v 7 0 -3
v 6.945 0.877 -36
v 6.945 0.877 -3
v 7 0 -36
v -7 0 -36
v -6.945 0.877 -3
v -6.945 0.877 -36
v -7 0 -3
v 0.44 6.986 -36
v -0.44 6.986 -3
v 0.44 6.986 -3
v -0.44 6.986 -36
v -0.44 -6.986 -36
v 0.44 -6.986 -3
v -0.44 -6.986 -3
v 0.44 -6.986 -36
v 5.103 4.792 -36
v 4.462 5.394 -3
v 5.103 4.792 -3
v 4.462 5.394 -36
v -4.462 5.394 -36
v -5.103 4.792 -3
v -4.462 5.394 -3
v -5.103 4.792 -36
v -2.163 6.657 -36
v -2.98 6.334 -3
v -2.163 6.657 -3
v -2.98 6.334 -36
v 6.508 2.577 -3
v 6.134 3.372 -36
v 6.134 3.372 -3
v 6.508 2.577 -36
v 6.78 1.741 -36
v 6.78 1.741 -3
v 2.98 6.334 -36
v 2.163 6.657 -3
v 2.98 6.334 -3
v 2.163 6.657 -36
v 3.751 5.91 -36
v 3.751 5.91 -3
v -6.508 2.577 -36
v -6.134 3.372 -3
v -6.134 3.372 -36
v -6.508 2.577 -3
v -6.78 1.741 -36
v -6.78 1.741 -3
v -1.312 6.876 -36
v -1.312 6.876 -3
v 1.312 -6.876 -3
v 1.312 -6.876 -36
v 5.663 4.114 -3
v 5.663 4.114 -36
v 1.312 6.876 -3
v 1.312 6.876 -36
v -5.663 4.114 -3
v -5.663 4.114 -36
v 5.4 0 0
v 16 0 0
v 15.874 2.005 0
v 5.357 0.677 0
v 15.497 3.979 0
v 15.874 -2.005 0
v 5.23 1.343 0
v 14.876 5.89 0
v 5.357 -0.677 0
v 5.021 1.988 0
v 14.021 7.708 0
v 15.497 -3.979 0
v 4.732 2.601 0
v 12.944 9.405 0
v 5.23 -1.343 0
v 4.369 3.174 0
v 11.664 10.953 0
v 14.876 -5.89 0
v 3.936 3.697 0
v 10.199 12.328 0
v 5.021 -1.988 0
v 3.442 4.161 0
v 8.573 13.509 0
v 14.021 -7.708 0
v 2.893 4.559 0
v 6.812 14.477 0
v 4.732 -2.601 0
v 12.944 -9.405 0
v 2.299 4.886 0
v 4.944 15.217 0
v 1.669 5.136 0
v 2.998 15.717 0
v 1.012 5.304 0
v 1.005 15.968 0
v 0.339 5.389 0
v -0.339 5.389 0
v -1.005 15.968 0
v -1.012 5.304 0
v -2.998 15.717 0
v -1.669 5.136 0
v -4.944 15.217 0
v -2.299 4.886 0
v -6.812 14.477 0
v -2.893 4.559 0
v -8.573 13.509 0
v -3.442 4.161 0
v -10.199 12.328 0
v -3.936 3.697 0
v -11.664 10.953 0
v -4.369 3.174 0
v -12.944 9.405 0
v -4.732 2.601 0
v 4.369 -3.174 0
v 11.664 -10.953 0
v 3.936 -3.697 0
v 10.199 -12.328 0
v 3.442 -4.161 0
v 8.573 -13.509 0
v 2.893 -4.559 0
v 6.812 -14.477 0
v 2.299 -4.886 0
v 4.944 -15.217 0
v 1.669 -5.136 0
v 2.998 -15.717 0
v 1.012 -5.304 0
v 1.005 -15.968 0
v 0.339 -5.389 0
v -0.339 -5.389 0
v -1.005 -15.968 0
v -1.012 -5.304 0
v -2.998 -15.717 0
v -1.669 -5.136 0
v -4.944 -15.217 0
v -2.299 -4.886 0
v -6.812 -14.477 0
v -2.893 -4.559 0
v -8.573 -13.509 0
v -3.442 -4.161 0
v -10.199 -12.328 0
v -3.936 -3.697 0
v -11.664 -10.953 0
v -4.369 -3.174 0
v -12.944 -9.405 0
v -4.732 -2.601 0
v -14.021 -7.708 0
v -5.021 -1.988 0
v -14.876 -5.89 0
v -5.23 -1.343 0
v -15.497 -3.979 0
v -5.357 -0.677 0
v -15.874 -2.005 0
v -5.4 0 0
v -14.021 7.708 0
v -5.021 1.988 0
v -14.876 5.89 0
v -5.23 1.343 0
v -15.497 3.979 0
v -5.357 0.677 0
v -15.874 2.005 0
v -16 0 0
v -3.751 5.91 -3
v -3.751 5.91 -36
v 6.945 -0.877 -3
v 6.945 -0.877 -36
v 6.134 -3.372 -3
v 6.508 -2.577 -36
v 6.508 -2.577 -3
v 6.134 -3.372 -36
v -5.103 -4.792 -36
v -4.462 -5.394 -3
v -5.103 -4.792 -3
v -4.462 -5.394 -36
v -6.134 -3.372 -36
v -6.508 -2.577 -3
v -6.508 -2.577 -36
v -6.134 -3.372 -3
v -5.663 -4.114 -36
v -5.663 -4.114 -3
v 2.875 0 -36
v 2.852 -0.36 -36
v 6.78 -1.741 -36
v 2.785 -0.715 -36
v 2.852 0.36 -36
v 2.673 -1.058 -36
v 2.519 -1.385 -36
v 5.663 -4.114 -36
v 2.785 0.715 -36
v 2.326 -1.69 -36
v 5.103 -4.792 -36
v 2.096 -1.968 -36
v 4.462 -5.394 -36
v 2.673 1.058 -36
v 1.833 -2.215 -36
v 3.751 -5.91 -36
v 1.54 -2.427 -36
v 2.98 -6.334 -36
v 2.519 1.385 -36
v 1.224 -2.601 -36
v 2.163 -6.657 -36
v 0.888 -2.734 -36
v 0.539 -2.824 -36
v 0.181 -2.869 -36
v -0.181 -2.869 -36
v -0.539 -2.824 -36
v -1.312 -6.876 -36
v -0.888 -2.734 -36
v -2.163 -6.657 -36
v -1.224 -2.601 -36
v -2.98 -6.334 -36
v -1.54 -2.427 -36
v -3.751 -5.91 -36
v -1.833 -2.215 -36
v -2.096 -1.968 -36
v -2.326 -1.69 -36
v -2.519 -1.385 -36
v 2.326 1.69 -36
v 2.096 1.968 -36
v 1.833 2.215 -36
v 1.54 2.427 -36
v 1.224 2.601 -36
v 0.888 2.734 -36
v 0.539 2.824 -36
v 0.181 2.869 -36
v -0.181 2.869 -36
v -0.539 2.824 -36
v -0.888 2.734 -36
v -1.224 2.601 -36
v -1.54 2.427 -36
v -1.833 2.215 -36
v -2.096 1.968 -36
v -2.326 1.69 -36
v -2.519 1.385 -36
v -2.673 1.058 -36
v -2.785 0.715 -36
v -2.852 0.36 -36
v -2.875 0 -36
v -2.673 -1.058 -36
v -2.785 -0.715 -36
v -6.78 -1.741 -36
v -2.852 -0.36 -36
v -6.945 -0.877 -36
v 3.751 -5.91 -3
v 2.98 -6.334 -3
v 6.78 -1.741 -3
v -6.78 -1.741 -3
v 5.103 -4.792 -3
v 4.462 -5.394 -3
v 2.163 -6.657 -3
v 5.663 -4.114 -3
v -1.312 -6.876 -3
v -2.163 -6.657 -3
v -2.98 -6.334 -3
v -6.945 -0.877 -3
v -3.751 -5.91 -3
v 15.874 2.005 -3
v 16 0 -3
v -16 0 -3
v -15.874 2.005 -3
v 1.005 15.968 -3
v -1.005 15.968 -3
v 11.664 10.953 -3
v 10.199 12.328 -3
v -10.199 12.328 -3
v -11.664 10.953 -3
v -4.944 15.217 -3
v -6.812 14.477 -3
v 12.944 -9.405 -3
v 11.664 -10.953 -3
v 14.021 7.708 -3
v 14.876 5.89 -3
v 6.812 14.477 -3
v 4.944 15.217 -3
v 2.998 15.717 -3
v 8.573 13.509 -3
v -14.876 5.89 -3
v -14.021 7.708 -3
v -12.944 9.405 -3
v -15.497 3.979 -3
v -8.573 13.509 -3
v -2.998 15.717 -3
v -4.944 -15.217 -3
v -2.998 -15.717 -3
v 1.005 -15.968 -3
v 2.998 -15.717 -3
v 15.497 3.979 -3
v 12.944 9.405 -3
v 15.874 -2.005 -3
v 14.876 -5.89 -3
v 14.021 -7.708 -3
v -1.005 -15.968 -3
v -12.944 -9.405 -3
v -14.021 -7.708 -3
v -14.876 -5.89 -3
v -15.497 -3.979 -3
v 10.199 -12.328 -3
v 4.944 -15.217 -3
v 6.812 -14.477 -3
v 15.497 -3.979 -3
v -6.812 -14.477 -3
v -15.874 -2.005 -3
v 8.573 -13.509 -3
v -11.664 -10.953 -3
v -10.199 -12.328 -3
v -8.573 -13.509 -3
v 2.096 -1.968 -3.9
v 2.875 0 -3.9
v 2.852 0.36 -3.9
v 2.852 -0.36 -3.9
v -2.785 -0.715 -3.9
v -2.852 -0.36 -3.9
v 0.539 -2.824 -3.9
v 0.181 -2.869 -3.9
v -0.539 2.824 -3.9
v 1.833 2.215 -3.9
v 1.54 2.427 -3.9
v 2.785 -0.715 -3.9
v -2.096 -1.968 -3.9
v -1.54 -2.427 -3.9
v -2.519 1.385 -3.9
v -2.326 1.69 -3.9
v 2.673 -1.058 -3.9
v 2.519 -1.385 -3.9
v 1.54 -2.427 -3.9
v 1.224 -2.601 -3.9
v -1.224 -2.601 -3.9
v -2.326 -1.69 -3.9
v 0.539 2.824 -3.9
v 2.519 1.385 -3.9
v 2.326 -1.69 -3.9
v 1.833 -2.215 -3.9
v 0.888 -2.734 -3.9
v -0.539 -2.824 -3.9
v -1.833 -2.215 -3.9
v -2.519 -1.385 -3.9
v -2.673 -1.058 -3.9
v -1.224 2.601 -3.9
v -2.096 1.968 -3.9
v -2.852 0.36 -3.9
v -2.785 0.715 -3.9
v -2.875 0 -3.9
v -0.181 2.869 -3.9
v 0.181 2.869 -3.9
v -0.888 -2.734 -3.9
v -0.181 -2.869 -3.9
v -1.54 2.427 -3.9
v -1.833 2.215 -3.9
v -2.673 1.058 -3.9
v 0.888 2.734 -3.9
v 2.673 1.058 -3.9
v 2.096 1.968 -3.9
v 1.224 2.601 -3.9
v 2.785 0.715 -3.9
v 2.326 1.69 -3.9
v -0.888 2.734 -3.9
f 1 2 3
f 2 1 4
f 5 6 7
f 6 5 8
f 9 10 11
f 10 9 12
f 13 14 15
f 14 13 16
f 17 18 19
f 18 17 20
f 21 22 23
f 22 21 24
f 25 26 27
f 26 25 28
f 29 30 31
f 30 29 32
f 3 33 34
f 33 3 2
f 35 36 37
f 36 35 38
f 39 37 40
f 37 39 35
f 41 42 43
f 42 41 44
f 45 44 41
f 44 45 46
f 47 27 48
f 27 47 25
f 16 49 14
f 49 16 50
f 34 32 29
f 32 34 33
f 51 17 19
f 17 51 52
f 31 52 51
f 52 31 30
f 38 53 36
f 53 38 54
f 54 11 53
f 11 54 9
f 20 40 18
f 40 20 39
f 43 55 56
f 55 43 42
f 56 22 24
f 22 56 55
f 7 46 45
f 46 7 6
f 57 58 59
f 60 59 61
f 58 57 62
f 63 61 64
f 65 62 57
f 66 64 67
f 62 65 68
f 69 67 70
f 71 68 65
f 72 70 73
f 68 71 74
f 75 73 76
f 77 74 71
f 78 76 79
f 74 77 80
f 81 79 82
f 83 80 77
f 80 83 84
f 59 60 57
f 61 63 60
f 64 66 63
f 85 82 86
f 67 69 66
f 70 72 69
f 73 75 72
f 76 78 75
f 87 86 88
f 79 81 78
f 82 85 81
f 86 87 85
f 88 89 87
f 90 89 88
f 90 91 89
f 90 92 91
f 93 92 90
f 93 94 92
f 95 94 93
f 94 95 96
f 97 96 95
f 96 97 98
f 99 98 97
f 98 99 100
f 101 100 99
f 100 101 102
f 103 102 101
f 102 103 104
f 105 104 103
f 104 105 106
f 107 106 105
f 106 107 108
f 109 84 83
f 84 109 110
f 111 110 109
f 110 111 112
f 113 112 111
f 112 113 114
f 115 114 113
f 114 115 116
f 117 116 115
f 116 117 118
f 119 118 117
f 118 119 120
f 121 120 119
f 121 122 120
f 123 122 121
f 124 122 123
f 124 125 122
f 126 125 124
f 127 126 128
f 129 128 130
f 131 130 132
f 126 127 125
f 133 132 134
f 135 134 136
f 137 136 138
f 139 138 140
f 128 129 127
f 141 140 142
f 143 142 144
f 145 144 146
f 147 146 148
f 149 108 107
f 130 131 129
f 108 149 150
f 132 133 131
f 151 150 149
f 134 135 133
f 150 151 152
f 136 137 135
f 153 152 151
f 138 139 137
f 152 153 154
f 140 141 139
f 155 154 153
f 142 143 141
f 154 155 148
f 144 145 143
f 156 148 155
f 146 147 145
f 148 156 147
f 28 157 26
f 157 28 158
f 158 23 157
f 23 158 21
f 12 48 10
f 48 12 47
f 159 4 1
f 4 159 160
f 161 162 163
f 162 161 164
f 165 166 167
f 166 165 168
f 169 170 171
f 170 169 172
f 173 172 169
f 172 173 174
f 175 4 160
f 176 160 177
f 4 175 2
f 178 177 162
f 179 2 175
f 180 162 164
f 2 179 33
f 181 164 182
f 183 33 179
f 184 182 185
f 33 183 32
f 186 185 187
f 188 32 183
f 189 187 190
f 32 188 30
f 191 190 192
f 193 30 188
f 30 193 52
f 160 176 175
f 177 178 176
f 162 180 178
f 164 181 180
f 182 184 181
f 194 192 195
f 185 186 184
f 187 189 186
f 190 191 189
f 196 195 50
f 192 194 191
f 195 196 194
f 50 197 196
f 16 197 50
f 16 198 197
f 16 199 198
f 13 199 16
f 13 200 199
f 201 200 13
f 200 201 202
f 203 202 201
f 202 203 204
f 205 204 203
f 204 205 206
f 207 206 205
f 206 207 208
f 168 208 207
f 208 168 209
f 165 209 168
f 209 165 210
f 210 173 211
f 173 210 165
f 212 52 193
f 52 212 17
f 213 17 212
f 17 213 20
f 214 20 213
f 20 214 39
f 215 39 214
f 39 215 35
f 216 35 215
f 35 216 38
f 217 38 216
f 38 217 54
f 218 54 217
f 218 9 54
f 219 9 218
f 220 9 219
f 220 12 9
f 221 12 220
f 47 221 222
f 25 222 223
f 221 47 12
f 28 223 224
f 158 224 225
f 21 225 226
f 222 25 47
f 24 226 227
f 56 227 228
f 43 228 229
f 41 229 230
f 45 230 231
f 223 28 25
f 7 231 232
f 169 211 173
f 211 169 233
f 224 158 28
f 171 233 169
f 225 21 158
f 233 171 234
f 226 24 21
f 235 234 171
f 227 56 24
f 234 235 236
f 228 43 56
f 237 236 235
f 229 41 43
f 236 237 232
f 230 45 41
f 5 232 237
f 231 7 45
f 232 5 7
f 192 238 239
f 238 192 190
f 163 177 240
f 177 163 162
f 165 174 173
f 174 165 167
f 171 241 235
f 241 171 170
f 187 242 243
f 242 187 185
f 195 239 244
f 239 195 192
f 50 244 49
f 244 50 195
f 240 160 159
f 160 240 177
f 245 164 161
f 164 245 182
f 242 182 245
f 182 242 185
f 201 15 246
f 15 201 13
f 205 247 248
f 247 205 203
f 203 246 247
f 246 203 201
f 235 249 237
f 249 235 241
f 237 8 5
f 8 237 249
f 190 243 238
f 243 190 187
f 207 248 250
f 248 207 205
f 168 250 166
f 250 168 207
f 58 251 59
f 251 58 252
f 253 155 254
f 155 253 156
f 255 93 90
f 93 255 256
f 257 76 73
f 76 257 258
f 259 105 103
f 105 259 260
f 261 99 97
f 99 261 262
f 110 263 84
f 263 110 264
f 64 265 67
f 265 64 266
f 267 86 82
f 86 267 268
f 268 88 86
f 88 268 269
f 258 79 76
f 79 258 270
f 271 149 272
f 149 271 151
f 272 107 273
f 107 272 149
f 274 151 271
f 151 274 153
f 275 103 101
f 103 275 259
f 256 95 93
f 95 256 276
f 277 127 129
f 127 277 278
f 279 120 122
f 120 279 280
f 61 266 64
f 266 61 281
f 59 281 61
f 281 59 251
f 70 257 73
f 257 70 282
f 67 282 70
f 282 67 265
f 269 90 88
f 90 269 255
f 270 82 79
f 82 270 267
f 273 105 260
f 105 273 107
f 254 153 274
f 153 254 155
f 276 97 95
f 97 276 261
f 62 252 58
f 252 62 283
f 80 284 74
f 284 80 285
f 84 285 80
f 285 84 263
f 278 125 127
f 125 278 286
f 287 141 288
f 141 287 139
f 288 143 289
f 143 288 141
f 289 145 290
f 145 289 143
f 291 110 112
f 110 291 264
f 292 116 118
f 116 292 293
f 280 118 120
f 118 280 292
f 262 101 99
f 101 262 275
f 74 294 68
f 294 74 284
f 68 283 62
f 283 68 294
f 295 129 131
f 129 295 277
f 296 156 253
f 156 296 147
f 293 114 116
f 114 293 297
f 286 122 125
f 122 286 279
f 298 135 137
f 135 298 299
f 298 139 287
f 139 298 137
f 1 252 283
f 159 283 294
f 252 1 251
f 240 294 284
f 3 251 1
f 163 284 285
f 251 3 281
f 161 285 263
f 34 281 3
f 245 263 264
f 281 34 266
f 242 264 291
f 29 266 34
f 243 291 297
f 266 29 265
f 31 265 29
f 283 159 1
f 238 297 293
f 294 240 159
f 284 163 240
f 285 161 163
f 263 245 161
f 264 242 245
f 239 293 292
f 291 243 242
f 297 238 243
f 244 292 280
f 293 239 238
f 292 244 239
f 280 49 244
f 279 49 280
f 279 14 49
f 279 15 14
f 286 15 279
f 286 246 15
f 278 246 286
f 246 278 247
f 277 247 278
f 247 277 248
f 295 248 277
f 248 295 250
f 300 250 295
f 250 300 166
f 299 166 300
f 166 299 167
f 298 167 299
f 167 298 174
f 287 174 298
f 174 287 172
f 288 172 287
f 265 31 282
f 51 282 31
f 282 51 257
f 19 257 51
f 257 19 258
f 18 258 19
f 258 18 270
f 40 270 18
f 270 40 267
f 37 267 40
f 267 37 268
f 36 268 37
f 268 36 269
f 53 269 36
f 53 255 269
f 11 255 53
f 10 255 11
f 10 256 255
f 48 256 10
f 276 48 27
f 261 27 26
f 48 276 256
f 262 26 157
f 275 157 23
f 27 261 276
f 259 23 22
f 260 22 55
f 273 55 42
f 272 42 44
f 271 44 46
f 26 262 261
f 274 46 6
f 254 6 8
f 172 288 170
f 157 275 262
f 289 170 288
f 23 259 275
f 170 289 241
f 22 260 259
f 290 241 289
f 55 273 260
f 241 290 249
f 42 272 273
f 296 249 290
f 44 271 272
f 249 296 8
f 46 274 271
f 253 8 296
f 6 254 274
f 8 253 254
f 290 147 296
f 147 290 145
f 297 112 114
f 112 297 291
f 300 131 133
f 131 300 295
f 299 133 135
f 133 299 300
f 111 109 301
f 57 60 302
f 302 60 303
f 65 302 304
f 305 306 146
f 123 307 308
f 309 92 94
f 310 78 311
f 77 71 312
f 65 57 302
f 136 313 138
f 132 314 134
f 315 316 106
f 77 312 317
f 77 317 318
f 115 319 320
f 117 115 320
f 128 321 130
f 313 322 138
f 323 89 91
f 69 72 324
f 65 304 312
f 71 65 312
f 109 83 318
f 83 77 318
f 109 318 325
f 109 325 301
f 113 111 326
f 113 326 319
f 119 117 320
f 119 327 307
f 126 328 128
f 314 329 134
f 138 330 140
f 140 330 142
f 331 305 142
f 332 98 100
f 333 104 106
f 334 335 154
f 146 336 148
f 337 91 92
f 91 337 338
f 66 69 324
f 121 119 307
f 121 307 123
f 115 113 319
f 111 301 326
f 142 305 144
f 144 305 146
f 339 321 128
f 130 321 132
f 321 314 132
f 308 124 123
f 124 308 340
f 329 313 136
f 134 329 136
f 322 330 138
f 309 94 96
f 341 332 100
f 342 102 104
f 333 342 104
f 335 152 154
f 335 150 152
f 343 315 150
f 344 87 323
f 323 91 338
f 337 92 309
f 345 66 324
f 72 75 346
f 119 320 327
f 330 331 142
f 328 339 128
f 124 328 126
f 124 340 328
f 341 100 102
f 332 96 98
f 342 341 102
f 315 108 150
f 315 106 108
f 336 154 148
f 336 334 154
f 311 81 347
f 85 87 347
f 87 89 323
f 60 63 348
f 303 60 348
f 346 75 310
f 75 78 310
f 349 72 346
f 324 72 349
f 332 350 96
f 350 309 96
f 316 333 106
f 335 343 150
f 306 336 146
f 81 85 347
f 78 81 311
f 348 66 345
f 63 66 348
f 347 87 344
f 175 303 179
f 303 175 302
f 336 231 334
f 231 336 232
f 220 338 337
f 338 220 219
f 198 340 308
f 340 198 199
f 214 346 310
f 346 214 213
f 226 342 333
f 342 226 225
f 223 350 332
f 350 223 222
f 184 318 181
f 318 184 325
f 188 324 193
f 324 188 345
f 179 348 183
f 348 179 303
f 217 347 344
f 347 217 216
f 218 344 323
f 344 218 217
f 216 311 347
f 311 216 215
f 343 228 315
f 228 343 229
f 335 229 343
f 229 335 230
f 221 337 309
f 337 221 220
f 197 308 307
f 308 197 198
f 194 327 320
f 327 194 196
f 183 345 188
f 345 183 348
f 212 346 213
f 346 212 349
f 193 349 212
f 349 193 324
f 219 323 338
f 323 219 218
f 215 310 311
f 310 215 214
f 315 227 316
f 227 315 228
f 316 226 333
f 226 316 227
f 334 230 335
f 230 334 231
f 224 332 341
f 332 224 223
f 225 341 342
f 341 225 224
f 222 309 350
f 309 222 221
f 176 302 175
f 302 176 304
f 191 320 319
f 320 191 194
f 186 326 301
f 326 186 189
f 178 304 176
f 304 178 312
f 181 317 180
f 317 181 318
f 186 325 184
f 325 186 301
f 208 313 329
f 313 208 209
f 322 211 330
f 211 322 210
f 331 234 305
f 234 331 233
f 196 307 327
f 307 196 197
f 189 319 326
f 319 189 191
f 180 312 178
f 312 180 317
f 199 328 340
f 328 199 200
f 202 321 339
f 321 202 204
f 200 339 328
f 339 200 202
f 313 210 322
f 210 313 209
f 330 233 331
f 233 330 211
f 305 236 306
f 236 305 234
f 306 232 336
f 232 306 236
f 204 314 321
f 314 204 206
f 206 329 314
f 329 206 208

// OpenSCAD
$fn = 50;


difference() {
	union() {
		translate(v = [0, 0, -36.0000000000]) {
			cylinder(h = 36, r = 7.0000000000);
		}
		translate(v = [0, 0, -3.0000000000]) {
			cylinder(h = 3, r = 16.0000000000);
		}
	}
	union() {
		translate(v = [0, 0, 0]) {
			rotate(a = [0, 0, 0]) {
				difference() {
					union() {
						#translate(v = [0, 0, -36.0000000000]) {
							cylinder(h = 36, r = 2.6000000000);
						}
						#translate(v = [0, 0, -3.9000000000]) {
							cylinder(h = 3.9000000000, r = 7.0000000000, r1 = 2.8750000000, r2 = 5.4000000000);
						}
						#translate(v = [0, 0, -36.0000000000]) {
							cylinder(h = 36, r = 2.8750000000);
						}
						#translate(v = [0, 0, -36.0000000000]) {
							cylinder(h = 36, r = 2.6000000000);
						}
					}
					union();
				}
			}
		}
	}
}
